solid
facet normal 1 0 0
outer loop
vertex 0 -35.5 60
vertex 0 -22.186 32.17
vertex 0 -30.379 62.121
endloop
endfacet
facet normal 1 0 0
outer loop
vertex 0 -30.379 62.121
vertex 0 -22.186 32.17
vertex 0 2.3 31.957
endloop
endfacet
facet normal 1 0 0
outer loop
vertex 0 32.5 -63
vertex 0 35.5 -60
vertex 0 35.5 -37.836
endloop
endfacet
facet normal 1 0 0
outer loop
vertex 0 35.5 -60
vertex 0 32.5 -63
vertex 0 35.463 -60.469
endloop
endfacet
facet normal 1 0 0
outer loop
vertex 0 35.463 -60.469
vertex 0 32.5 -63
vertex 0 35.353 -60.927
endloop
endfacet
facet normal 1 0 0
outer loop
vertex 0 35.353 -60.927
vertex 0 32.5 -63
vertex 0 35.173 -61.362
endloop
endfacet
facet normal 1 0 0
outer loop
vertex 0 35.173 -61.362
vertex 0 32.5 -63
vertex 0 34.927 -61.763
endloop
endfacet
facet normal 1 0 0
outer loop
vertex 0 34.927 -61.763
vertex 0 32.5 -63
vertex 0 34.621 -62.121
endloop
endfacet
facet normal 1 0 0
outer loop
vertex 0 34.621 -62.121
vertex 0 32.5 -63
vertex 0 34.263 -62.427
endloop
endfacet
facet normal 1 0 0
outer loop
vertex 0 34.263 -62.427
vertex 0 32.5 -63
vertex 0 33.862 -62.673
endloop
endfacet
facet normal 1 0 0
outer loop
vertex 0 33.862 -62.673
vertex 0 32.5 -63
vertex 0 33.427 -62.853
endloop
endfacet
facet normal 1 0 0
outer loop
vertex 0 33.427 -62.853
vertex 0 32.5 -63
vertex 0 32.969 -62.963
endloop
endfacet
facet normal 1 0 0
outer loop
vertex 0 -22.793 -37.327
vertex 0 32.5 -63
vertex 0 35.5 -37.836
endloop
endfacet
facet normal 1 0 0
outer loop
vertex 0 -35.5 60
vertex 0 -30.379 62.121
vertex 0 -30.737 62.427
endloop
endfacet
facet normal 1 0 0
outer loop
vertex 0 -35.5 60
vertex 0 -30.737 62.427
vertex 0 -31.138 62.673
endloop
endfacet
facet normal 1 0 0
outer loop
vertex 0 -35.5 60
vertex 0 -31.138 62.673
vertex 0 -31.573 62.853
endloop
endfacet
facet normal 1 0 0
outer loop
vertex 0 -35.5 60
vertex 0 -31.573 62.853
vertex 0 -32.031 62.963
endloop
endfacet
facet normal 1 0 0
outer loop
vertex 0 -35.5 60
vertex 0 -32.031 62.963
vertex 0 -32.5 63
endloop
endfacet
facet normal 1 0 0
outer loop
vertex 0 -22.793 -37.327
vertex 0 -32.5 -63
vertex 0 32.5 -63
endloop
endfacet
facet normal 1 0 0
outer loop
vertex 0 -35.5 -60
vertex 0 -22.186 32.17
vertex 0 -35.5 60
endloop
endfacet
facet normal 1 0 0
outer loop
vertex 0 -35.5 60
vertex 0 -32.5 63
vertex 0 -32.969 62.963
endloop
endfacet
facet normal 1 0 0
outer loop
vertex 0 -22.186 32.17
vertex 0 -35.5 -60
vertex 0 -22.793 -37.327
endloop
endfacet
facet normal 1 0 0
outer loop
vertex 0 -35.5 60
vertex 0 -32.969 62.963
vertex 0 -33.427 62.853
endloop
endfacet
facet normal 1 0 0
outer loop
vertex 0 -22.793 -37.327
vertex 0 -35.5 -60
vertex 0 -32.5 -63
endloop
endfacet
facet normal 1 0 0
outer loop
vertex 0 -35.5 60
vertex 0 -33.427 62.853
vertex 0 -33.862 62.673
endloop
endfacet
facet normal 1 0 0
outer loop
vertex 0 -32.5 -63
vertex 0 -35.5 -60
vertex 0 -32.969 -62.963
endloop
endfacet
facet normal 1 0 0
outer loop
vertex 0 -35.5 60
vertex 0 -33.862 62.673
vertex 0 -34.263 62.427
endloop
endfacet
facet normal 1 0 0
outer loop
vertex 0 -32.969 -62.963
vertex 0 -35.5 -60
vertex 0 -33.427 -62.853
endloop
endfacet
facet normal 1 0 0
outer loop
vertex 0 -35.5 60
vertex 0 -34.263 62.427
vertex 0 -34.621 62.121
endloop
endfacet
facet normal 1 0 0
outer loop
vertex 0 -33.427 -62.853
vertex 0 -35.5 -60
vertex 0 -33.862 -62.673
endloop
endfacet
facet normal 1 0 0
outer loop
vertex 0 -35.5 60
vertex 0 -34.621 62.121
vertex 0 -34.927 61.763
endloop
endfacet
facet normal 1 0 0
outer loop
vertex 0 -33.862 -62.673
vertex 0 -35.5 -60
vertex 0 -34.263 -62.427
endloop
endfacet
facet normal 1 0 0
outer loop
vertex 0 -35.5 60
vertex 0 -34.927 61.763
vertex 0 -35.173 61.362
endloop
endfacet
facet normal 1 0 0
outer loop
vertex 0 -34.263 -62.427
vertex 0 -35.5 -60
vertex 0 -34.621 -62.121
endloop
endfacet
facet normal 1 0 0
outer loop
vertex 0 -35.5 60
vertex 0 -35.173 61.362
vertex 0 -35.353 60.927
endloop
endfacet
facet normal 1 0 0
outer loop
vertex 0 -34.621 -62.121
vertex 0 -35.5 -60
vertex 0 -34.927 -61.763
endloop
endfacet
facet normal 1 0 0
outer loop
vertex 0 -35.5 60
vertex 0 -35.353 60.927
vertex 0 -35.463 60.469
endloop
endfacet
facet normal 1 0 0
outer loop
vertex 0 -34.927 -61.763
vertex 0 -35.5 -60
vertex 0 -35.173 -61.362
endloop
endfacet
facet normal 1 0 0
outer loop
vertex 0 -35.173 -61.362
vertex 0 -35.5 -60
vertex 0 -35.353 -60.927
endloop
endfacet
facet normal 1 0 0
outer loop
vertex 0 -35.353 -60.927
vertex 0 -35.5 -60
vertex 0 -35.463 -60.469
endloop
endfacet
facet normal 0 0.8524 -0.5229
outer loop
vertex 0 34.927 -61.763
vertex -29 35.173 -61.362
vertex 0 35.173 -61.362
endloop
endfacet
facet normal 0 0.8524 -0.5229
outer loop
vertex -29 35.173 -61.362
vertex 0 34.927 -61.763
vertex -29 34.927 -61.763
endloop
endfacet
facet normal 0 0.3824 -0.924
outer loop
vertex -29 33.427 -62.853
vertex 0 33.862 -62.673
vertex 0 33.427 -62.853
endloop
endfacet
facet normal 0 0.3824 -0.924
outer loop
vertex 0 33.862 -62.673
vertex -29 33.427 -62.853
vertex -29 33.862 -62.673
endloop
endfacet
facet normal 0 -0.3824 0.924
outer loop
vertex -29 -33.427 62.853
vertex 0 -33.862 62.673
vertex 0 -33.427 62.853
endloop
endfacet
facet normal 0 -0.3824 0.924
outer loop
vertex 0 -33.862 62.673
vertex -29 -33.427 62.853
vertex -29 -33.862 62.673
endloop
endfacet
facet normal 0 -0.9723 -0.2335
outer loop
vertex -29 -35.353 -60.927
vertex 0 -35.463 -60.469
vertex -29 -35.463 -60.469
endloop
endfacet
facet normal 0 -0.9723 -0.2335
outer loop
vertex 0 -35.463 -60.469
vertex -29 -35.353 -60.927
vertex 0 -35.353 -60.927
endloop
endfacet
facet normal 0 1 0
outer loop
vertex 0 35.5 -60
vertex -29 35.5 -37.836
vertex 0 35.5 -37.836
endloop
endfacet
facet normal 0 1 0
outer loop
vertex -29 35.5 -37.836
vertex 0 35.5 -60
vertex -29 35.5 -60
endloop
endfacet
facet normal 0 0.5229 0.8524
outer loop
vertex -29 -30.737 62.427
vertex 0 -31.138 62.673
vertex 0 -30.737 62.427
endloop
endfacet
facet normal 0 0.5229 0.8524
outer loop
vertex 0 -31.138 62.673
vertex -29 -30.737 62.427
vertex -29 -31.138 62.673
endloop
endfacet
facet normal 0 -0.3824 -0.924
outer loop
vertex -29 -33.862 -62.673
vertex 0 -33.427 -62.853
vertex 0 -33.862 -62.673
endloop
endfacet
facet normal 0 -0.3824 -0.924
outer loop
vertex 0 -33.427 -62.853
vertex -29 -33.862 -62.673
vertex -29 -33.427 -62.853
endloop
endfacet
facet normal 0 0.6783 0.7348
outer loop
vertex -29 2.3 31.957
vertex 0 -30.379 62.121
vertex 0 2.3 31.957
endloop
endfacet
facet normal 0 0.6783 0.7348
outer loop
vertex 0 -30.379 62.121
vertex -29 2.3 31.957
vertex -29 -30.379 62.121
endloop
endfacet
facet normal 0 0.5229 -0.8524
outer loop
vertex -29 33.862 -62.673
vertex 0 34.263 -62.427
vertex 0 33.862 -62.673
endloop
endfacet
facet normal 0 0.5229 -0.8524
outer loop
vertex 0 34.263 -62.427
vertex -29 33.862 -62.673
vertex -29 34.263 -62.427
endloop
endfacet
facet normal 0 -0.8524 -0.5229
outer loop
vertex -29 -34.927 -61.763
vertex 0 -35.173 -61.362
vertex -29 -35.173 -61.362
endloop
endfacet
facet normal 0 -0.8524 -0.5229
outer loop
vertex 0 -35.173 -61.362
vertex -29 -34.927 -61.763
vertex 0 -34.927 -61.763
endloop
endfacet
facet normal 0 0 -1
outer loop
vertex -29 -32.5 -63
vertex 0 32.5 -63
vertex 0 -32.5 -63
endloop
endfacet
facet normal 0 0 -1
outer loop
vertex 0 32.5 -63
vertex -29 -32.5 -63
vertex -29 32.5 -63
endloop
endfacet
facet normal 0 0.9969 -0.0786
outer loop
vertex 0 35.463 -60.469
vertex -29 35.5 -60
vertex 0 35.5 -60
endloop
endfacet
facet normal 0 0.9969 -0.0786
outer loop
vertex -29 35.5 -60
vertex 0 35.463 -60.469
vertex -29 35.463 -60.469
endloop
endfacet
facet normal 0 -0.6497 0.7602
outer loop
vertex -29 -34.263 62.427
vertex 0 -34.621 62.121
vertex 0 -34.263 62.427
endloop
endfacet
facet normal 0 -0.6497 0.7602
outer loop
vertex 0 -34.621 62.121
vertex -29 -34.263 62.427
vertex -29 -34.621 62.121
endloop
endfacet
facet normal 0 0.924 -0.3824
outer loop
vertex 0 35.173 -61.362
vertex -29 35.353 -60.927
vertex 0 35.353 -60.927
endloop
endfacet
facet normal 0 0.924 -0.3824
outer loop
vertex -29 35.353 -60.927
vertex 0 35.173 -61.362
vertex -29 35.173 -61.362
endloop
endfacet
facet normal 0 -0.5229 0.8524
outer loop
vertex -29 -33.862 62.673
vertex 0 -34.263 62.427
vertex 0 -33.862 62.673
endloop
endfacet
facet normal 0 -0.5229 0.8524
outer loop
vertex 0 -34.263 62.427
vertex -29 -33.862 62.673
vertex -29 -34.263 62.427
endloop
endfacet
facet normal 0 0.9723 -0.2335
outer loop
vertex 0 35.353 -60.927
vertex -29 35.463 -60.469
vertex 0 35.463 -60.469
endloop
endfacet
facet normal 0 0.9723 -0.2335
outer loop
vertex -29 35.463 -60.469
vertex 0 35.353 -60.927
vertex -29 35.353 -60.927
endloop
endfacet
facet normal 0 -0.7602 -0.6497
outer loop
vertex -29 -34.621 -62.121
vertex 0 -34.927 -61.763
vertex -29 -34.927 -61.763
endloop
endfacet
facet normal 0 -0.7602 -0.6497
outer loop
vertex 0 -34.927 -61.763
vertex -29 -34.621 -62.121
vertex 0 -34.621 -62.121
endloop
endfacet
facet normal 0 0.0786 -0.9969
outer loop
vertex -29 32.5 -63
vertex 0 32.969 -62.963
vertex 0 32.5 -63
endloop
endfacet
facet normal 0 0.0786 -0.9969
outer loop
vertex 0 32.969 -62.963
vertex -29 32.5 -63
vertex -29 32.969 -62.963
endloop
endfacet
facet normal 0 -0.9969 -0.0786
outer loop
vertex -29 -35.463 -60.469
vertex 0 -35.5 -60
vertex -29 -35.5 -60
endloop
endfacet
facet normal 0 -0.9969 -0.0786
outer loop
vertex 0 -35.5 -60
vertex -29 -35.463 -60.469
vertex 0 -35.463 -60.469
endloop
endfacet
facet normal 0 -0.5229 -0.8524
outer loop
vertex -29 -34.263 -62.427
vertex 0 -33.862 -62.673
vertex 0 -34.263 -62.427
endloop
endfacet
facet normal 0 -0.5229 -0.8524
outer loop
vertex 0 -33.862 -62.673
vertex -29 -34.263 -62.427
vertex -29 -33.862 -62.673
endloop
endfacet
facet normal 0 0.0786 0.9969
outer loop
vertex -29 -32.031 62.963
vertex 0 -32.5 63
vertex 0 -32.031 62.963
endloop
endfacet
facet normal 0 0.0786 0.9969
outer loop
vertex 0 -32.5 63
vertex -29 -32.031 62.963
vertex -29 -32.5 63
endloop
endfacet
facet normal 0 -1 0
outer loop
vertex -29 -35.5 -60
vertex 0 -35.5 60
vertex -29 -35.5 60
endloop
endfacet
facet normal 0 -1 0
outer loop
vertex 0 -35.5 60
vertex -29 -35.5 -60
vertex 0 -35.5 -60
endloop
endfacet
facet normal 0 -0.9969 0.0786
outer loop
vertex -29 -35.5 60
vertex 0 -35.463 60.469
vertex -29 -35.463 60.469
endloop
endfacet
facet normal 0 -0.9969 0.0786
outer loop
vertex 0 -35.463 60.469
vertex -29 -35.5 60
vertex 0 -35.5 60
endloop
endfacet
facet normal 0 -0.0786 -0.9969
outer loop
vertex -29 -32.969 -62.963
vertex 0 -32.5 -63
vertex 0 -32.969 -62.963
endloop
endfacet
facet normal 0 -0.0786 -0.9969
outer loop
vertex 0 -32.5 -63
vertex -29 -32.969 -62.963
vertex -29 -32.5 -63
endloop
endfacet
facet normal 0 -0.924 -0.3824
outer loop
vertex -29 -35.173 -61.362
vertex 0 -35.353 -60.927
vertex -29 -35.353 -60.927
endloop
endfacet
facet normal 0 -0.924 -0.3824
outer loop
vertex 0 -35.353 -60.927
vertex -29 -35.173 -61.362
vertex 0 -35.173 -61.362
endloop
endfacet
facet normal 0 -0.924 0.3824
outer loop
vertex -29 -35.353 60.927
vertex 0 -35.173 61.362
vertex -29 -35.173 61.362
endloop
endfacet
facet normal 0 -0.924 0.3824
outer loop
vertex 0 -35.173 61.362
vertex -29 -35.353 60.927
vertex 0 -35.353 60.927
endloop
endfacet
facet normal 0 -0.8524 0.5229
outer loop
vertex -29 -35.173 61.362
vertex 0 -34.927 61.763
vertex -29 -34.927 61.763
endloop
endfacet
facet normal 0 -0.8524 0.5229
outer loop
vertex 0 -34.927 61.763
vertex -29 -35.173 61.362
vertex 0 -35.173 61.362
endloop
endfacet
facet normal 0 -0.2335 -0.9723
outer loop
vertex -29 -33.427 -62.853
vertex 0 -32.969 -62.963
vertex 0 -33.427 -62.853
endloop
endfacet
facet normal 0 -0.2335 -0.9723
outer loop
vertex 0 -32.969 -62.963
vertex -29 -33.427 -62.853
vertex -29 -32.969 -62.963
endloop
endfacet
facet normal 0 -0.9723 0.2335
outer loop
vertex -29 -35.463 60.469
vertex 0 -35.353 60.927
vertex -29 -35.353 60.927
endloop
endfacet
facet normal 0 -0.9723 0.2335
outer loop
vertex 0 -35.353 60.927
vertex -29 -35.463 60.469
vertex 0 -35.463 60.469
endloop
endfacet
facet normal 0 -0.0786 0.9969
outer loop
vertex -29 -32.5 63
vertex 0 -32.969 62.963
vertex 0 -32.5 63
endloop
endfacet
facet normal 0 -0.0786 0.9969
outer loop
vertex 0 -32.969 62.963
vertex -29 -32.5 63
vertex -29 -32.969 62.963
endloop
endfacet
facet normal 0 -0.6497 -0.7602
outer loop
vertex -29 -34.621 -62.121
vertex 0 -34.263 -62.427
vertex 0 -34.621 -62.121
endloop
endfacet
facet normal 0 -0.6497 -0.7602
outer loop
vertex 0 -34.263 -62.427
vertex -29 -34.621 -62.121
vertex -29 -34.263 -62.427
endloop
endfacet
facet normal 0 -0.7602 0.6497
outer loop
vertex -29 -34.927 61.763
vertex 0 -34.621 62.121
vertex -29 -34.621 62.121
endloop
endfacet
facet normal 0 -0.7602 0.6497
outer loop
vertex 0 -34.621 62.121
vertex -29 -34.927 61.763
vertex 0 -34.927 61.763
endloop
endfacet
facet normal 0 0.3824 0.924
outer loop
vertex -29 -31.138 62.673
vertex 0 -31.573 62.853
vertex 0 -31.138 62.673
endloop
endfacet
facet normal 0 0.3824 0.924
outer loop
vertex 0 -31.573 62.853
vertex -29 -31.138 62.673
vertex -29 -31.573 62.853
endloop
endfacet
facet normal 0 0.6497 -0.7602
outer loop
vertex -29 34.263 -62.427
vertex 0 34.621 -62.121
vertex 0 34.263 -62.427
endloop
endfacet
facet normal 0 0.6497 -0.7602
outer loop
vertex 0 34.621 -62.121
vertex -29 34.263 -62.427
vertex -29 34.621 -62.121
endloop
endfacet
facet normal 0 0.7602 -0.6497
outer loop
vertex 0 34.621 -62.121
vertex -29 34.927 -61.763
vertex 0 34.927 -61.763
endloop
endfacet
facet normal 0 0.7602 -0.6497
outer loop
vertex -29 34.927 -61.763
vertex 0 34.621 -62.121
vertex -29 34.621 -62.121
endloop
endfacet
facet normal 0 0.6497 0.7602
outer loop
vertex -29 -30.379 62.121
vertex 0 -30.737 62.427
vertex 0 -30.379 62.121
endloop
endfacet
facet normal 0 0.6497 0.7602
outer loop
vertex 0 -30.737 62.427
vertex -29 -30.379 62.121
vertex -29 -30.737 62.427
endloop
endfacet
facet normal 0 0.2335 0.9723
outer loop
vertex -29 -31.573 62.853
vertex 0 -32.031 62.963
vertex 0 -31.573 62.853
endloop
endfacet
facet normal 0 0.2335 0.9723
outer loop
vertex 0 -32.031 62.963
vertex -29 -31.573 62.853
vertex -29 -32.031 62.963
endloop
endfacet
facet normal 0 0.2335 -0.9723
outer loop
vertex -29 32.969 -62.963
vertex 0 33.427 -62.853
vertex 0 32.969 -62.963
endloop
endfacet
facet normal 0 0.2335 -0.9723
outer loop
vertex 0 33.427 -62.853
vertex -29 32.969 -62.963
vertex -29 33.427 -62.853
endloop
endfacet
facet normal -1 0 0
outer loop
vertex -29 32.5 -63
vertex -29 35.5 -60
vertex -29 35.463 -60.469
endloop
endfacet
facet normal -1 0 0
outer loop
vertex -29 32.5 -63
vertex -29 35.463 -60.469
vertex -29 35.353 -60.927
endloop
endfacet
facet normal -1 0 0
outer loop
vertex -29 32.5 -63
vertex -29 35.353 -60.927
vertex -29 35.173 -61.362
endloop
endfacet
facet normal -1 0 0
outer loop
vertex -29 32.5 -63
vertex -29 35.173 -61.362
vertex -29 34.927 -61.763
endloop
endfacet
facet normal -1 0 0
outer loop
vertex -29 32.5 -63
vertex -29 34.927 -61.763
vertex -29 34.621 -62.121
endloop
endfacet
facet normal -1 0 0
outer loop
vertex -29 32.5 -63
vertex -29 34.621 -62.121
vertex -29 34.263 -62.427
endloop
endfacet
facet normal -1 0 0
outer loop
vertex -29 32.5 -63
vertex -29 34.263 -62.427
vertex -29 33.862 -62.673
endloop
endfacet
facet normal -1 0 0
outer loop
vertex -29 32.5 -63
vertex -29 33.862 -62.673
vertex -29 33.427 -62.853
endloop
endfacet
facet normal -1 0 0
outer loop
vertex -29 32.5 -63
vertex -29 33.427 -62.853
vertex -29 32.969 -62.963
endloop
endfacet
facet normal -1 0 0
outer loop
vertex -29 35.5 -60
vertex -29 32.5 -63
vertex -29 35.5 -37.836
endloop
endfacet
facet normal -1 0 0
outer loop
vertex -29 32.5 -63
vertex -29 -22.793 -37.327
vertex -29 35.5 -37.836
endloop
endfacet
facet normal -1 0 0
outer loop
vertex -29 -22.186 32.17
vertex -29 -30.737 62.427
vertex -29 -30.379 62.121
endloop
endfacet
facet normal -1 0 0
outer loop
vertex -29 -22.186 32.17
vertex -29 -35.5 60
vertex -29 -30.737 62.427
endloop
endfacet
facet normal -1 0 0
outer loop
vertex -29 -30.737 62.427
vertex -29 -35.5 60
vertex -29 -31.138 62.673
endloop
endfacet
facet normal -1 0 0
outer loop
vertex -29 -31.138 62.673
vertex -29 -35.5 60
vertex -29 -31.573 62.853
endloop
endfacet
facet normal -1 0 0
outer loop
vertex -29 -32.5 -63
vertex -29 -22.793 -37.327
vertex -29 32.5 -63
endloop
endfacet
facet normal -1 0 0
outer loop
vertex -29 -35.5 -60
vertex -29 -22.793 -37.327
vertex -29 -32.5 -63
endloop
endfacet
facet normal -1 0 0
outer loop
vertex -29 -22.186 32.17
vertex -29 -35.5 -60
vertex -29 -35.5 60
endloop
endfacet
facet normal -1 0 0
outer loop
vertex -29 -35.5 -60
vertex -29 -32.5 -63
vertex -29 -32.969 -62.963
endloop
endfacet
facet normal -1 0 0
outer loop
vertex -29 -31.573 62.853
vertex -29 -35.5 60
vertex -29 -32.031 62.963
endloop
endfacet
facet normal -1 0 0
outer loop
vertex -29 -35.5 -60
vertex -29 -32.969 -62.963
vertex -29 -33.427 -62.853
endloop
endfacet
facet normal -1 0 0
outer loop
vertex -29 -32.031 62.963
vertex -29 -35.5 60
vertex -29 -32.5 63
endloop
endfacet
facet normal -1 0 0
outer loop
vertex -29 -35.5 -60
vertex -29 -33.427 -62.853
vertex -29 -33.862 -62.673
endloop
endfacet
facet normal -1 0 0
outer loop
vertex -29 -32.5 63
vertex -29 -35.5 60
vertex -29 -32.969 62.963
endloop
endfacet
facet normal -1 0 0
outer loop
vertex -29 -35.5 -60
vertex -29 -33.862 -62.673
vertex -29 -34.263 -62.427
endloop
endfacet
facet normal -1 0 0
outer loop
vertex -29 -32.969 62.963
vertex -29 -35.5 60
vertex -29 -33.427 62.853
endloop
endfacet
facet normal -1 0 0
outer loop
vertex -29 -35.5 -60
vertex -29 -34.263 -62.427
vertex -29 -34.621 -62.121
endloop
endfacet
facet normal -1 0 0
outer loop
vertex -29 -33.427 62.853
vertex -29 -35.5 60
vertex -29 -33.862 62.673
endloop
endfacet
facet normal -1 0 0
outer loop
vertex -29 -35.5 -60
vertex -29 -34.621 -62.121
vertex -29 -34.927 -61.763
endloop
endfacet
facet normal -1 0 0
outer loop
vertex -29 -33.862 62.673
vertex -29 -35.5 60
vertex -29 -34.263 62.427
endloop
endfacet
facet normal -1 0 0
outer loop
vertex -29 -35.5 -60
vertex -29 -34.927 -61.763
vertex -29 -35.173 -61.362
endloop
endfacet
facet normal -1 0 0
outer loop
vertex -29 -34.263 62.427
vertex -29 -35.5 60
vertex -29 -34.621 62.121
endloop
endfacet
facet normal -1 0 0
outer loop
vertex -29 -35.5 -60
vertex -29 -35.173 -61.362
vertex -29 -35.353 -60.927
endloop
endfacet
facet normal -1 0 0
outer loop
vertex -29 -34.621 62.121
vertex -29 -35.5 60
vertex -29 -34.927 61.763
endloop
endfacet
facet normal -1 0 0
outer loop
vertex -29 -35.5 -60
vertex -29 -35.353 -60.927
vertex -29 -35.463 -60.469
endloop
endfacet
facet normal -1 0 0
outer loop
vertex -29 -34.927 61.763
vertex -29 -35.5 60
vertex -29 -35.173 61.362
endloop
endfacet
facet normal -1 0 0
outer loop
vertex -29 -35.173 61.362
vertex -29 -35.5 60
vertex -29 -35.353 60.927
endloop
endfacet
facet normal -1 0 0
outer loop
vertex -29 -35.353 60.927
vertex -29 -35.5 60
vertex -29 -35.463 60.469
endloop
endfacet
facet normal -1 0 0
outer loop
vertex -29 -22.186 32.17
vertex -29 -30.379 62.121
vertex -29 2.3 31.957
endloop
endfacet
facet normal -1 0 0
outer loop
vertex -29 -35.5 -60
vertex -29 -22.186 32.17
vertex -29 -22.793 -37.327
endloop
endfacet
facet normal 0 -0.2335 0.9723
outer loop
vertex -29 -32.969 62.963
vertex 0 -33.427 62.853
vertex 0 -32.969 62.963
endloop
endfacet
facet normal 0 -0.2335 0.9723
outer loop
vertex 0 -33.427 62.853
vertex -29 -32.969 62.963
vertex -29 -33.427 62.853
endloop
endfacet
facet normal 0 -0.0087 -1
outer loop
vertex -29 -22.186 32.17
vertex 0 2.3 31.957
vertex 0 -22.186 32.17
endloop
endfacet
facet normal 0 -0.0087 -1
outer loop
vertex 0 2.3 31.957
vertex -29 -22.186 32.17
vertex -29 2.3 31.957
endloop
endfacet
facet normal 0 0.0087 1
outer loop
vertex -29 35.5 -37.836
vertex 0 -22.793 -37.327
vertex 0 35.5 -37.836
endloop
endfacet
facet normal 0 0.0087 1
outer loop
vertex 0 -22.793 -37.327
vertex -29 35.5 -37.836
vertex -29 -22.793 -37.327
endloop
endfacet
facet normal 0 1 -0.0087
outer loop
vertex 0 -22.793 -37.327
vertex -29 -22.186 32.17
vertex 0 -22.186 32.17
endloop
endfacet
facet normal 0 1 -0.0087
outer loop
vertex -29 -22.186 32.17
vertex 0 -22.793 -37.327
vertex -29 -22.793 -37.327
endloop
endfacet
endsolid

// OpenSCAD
// file: roundedcube_simple.scad
// Orignally by Daniel Upshaw
// Source: https://danielupshaw.com/openscad-rounded-corners/

module rounded_cube(size = [1, 1, 1], center = false, radius = 0.5) {
	// If single value, convert to [x, y, z] vector
	size = (size[0] == undef) ? [size, size, size] : size;

	translate = (center == false) ?
		[radius, radius, radius] :
		[
			radius - (size[0] / 2),
			radius - (size[1] / 2),
			radius - (size[2] / 2)
	];

	translate(v = translate)
	minkowski() {
		cube(size = [
			size[0] - (radius * 2),
			size[1] - (radius * 2),
			size[2] - (radius * 2)
		]);
		sphere(r = radius);
	}
}
// main file
$fn=40;
use <roundedcube_simple.scad>

// Propiedades del chasis






m_espesor = 29;

m_margen = 3;

m_ancho = 120; // 
m_ancho_arriba = 16;
m_largo_trapecio = 8;
m_largo_atras = 65;
m_largo_adelante = -30;

EspesorMonitor=69.5;
AltoMonitor = 555;
AnchoMonitor = 952;
BaseMonitor = 15;

MonTranslate = [0,AltoMonitor/2-m_largo_atras/2+10,-5];


module PataSolida(){
    // Uso un poligono
    poly = [
        [-m_ancho/2, -m_largo_atras/2],
        [-m_ancho/2, m_largo_atras/2],
        [0, m_largo_atras/2 ],
        //[+ m_ancho_arriba, m_largo_adelante/2 ],
        //    [+ m_ancho_arriba/2, m_largo/2 + m_largo_trapecio],
        //    [+m_ancho/2, +m_largo/2],
        [+m_ancho/2, -m_largo_atras/2]

    ];

rotate([0,-90,0])
        linear_extrude(height=m_espesor)
            minkowski() {
              polygon(points = poly);    
                circle(m_margen);
           }

}

module Pata(){
    difference(){
        PataSolida();

        translate(MonTranslate)
            rotate([-0.5,0,0])
            MonitorBulk();
    }
}


module MonitorBulk(){
    cube([AnchoMonitor, AltoMonitor, EspesorMonitor], center=true);
}

module Pantalla(){
    translate([0,BaseMonitor,EspesorMonitor-5])
        cube([AnchoMonitor+1, AltoMonitor-BaseMonitor/2, EspesorMonitor], center=true);
}

module Monitor(){
    difference(){
        MonitorBulk();
        Pantalla();
    }
}



//      translate(MonTranslate)
//          rotate([-0.5,0,0])
//     scale(0.995)
//          Monitor();
    Pata();
